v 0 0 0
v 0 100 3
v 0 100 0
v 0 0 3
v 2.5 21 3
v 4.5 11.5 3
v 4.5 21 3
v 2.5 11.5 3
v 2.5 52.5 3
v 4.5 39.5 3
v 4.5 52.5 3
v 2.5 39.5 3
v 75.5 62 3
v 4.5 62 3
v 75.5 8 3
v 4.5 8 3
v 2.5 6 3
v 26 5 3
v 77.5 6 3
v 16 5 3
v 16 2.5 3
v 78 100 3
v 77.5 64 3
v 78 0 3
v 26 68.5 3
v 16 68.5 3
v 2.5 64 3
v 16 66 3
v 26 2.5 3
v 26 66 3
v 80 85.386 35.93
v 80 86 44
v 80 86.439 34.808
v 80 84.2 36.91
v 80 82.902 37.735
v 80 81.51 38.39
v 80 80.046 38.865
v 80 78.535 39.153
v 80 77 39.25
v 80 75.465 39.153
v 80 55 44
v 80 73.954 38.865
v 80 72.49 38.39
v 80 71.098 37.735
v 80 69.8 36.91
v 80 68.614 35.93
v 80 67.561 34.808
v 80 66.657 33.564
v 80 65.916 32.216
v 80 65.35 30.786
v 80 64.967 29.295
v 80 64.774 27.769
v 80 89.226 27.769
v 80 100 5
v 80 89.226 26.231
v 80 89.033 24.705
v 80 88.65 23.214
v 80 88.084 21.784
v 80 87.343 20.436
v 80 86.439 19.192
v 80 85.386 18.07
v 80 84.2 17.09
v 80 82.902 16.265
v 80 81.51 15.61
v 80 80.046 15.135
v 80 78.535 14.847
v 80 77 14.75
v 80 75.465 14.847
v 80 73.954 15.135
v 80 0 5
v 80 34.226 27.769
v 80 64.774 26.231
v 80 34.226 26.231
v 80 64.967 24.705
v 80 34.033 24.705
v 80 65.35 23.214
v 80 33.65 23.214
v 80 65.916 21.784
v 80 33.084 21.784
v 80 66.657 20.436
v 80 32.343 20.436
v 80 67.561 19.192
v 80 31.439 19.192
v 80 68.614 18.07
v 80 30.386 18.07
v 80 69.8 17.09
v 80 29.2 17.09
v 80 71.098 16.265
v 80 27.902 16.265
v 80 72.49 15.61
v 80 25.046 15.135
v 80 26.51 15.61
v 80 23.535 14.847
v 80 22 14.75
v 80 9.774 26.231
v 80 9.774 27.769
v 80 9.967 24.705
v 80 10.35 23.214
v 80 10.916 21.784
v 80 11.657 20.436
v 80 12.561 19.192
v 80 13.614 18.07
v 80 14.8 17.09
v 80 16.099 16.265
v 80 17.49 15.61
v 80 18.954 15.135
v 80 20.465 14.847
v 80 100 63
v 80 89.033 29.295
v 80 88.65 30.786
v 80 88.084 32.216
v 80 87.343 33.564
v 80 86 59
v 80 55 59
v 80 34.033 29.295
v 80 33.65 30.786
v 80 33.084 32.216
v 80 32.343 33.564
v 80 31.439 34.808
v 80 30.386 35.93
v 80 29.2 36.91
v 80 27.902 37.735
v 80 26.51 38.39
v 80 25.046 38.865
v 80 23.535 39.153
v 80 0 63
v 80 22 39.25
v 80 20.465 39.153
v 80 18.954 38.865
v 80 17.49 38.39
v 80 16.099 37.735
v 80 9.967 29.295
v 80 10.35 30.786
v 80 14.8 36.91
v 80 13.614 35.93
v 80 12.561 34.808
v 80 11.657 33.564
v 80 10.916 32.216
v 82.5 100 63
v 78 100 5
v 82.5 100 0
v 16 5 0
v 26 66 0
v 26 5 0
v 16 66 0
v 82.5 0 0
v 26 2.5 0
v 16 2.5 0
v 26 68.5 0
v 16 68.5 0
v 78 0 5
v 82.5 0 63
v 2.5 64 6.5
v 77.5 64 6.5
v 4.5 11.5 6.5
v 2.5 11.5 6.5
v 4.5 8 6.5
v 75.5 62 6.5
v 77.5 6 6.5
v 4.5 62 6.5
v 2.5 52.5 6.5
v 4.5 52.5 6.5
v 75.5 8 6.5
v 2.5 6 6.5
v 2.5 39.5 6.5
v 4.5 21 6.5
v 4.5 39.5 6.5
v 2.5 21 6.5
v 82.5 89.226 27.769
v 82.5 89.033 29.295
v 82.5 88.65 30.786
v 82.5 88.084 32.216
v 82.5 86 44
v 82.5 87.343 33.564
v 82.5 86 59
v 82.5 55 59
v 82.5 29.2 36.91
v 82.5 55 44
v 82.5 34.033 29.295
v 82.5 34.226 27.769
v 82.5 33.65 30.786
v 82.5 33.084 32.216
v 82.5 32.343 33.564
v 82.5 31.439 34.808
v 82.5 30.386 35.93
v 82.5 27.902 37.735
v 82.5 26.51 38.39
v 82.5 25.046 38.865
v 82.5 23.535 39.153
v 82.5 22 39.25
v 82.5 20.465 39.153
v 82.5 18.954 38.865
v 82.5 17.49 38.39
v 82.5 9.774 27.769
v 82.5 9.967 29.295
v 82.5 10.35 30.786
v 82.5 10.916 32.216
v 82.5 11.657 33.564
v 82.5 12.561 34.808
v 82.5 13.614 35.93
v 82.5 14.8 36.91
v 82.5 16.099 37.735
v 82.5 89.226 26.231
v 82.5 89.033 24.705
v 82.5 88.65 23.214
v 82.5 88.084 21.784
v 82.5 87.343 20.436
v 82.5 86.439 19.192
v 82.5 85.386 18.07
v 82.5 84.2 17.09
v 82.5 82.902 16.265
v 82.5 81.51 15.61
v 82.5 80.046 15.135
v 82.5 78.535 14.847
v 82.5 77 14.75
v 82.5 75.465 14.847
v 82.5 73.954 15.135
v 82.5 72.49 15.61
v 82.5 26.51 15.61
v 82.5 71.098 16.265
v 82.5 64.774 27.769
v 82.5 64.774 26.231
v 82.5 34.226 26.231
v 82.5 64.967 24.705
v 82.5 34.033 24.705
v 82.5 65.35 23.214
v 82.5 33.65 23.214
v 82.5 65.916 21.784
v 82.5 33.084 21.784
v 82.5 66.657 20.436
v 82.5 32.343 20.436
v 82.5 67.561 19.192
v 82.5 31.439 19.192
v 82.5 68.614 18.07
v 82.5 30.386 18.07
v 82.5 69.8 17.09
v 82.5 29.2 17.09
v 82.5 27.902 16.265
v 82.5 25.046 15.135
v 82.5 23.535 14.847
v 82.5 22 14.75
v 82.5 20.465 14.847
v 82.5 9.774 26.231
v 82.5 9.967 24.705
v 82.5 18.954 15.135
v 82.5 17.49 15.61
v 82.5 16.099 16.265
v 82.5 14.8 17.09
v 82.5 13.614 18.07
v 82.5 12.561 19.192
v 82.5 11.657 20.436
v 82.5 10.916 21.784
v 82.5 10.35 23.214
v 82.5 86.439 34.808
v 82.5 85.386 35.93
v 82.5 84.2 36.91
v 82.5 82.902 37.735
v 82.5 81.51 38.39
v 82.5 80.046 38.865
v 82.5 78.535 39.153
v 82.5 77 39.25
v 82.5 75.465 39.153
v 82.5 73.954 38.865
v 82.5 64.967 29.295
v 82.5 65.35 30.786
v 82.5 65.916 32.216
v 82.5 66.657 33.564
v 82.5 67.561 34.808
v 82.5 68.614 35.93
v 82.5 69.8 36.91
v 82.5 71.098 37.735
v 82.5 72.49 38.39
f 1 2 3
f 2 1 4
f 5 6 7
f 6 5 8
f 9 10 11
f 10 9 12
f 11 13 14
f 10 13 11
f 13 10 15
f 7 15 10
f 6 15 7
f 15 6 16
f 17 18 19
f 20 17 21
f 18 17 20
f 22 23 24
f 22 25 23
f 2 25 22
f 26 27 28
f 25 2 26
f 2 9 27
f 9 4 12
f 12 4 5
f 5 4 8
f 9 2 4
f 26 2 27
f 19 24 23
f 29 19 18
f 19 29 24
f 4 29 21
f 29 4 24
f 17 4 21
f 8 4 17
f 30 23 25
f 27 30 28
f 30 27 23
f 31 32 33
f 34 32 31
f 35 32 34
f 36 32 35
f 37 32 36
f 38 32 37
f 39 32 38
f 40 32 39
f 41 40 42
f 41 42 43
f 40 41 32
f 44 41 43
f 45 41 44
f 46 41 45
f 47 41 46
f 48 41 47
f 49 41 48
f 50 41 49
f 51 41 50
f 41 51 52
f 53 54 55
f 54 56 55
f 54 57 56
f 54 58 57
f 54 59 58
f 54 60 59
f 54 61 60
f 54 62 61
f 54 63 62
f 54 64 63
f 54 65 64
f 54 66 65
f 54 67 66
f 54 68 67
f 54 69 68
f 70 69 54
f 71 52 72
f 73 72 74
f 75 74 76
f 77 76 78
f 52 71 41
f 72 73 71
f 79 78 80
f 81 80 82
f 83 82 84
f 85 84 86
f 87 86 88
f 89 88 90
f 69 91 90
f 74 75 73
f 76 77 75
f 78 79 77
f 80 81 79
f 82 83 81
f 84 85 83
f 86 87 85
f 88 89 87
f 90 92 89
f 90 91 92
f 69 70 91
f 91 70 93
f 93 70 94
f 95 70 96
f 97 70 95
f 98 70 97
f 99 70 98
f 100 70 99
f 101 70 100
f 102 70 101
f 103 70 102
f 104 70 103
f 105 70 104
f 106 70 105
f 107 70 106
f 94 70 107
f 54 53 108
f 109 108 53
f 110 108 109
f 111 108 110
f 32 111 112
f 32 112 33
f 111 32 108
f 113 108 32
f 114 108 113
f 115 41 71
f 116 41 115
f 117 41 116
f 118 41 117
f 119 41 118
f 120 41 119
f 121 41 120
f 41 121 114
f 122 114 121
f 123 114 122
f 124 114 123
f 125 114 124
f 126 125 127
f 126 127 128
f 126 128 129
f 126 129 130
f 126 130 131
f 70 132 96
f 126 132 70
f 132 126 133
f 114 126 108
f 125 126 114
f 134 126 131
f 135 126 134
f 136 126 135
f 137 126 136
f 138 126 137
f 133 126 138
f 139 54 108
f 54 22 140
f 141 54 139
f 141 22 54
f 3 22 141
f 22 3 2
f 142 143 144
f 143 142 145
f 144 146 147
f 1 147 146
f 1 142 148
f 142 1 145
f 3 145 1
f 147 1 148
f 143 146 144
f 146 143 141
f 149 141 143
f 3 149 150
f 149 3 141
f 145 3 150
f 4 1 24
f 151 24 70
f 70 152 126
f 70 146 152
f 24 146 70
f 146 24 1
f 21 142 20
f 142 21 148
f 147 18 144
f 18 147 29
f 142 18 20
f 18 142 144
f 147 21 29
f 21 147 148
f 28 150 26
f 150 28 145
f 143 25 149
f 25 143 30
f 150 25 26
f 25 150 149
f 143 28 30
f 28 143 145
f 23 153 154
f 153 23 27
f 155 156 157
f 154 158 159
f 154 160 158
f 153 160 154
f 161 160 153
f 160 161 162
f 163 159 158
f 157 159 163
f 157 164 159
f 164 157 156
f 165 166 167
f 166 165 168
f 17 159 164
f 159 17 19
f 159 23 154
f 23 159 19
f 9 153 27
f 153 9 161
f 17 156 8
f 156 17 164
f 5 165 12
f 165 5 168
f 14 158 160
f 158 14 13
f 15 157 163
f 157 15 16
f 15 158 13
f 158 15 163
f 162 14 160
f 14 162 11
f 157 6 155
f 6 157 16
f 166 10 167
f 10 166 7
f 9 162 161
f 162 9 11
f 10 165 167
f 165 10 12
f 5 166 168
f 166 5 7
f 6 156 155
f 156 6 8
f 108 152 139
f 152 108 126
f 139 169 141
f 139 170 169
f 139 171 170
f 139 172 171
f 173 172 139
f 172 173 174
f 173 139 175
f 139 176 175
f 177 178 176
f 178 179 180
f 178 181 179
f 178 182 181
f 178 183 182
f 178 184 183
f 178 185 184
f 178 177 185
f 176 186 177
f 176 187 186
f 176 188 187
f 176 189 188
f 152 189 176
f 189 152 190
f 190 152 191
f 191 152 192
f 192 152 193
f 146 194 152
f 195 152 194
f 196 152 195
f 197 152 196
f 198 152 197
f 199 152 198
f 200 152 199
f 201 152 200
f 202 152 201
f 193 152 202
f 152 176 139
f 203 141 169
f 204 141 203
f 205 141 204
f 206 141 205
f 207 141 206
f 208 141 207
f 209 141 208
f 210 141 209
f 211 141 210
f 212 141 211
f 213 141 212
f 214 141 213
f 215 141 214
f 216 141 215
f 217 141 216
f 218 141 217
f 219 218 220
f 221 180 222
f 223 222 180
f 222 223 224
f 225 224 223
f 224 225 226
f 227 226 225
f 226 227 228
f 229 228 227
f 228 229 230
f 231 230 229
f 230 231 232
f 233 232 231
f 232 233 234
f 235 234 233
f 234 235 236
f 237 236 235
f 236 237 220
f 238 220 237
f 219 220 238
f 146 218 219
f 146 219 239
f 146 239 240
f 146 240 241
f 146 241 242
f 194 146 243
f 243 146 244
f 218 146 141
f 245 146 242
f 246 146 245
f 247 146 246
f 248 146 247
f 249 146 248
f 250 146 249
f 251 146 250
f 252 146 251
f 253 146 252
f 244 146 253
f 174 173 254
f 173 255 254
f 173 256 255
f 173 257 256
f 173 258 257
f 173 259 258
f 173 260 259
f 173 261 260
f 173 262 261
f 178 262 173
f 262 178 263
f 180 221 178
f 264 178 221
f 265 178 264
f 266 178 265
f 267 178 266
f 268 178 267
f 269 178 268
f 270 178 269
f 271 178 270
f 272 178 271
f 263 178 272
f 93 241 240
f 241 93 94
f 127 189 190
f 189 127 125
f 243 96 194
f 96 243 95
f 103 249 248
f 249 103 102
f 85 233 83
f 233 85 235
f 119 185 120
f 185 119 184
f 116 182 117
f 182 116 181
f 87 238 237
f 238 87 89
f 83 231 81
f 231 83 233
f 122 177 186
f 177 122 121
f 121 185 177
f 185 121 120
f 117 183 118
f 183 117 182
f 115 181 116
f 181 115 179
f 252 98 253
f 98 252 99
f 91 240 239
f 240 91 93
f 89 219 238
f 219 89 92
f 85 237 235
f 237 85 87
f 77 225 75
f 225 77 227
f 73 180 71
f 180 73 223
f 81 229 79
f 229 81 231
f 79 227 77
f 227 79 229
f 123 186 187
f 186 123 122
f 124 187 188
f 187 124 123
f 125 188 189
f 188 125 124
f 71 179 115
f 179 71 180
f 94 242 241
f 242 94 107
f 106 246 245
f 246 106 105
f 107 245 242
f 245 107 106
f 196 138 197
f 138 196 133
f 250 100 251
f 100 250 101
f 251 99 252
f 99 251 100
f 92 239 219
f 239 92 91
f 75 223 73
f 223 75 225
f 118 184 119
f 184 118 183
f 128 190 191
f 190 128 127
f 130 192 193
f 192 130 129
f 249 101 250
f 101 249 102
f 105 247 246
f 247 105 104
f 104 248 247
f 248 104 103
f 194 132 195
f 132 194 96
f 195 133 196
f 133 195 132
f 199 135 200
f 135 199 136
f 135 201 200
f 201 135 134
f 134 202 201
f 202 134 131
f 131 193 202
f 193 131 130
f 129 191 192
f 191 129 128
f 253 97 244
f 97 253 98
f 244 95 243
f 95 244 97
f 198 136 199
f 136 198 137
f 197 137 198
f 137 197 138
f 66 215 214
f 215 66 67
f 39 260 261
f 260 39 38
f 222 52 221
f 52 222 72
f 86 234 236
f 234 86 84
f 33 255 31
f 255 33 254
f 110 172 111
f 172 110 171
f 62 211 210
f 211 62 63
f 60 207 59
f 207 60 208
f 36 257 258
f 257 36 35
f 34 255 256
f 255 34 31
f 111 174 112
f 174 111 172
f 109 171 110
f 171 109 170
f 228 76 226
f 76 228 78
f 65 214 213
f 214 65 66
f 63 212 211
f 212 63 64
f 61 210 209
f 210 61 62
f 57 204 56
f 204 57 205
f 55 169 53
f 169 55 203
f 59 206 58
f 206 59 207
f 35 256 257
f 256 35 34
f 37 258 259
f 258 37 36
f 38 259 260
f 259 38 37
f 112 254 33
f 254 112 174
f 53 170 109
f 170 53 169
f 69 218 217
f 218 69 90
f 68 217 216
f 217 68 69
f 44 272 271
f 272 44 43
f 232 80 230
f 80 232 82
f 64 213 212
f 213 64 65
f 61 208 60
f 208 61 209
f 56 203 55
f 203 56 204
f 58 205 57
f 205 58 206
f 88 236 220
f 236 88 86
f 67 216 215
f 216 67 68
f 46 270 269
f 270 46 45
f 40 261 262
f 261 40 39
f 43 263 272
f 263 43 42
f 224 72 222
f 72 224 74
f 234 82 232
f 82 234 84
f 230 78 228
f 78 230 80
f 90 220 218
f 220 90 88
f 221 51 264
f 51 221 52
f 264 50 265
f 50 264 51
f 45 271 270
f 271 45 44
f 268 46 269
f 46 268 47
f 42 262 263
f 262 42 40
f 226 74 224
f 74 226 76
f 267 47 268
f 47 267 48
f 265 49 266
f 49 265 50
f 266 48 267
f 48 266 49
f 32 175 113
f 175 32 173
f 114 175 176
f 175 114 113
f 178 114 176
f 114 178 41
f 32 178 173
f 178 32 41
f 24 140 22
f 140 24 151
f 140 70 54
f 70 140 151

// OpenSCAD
$fn=50;
difference() {
 cube([80,100,3]);
 translate([16,2.5,-1]) cube([10,2.5,5]);
 translate([16,66,-1]) cube([10,2.5,5]);
}

difference() {
 translate([80,0,0]) cube([2.5,100,63]);
 
 // gaten knoppen
 translate([0,10,12]) translate([79,12,15]) rotate([0,90,0])cylinder(d=24.5,h=10);
 translate([0,65,12]) translate([79,12,15]) rotate([0,90,0])cylinder(d=24.5,h=10);
 
 // Display
 translate([90,55,44]) rotate([0,0,90]) cube([31,15,15]);
}



translate([78,0,3]) cube([3,100,2]);
//cylinder(d=24,h=10);

// Arduino 
difference() {
 translate([40,35,4]) rotate([0,0,270])  Ardu();
 
}

module Ardu() {
arduino_width = 54;
arduino_length = 71;
arduino_usb_width = 13;
arduino_usb_height = 15;
arduino_usb_x = 9.5;
arduino_power_width = 9.5;
arduino_power_height = 15;
arduino_power_x = 3.5;

wall_thickness = 2;
wall_height = 4;
bottom_thickness = 1;
side_shoulder = 6;

difference()
{
	// Exterior box
	cube([arduino_width+(2*wall_thickness),arduino_length+(2*wall_thickness),wall_height+bottom_thickness], center=true);

	// Interior recess
	translate([0,0,bottom_thickness/2.0])
		cube([arduino_width,arduino_length,wall_height+4], center=true);

	// Bottom hole
	cube([arduino_width-(2*side_shoulder),arduino_length-(2*side_shoulder),wall_height+bottom_thickness], center=true);

	// USB hole
	translate([	-1*((arduino_width/2.0)-(arduino_usb_width/2.0)-arduino_usb_x),
			-1*(arduino_length/2.0)-(wall_thickness/2.0),
			-1*(wall_height/2.0 - arduino_usb_height/2.0)+bottom_thickness/2.0])
	{
		cube([arduino_usb_width,wall_thickness,arduino_usb_height], center=true);
	}

	// Power hole
	translate([	((arduino_width/2.0)-(arduino_power_width/2.0)-arduino_power_x),
			-1*(arduino_length/2.0)-(wall_thickness/2.0),
			-1*(wall_height/2.0 - arduino_power_height/2.0)+bottom_thickness/2.0])
	{
		cube([arduino_power_width,wall_thickness,arduino_power_height], center=true);
	}
	
}

}
